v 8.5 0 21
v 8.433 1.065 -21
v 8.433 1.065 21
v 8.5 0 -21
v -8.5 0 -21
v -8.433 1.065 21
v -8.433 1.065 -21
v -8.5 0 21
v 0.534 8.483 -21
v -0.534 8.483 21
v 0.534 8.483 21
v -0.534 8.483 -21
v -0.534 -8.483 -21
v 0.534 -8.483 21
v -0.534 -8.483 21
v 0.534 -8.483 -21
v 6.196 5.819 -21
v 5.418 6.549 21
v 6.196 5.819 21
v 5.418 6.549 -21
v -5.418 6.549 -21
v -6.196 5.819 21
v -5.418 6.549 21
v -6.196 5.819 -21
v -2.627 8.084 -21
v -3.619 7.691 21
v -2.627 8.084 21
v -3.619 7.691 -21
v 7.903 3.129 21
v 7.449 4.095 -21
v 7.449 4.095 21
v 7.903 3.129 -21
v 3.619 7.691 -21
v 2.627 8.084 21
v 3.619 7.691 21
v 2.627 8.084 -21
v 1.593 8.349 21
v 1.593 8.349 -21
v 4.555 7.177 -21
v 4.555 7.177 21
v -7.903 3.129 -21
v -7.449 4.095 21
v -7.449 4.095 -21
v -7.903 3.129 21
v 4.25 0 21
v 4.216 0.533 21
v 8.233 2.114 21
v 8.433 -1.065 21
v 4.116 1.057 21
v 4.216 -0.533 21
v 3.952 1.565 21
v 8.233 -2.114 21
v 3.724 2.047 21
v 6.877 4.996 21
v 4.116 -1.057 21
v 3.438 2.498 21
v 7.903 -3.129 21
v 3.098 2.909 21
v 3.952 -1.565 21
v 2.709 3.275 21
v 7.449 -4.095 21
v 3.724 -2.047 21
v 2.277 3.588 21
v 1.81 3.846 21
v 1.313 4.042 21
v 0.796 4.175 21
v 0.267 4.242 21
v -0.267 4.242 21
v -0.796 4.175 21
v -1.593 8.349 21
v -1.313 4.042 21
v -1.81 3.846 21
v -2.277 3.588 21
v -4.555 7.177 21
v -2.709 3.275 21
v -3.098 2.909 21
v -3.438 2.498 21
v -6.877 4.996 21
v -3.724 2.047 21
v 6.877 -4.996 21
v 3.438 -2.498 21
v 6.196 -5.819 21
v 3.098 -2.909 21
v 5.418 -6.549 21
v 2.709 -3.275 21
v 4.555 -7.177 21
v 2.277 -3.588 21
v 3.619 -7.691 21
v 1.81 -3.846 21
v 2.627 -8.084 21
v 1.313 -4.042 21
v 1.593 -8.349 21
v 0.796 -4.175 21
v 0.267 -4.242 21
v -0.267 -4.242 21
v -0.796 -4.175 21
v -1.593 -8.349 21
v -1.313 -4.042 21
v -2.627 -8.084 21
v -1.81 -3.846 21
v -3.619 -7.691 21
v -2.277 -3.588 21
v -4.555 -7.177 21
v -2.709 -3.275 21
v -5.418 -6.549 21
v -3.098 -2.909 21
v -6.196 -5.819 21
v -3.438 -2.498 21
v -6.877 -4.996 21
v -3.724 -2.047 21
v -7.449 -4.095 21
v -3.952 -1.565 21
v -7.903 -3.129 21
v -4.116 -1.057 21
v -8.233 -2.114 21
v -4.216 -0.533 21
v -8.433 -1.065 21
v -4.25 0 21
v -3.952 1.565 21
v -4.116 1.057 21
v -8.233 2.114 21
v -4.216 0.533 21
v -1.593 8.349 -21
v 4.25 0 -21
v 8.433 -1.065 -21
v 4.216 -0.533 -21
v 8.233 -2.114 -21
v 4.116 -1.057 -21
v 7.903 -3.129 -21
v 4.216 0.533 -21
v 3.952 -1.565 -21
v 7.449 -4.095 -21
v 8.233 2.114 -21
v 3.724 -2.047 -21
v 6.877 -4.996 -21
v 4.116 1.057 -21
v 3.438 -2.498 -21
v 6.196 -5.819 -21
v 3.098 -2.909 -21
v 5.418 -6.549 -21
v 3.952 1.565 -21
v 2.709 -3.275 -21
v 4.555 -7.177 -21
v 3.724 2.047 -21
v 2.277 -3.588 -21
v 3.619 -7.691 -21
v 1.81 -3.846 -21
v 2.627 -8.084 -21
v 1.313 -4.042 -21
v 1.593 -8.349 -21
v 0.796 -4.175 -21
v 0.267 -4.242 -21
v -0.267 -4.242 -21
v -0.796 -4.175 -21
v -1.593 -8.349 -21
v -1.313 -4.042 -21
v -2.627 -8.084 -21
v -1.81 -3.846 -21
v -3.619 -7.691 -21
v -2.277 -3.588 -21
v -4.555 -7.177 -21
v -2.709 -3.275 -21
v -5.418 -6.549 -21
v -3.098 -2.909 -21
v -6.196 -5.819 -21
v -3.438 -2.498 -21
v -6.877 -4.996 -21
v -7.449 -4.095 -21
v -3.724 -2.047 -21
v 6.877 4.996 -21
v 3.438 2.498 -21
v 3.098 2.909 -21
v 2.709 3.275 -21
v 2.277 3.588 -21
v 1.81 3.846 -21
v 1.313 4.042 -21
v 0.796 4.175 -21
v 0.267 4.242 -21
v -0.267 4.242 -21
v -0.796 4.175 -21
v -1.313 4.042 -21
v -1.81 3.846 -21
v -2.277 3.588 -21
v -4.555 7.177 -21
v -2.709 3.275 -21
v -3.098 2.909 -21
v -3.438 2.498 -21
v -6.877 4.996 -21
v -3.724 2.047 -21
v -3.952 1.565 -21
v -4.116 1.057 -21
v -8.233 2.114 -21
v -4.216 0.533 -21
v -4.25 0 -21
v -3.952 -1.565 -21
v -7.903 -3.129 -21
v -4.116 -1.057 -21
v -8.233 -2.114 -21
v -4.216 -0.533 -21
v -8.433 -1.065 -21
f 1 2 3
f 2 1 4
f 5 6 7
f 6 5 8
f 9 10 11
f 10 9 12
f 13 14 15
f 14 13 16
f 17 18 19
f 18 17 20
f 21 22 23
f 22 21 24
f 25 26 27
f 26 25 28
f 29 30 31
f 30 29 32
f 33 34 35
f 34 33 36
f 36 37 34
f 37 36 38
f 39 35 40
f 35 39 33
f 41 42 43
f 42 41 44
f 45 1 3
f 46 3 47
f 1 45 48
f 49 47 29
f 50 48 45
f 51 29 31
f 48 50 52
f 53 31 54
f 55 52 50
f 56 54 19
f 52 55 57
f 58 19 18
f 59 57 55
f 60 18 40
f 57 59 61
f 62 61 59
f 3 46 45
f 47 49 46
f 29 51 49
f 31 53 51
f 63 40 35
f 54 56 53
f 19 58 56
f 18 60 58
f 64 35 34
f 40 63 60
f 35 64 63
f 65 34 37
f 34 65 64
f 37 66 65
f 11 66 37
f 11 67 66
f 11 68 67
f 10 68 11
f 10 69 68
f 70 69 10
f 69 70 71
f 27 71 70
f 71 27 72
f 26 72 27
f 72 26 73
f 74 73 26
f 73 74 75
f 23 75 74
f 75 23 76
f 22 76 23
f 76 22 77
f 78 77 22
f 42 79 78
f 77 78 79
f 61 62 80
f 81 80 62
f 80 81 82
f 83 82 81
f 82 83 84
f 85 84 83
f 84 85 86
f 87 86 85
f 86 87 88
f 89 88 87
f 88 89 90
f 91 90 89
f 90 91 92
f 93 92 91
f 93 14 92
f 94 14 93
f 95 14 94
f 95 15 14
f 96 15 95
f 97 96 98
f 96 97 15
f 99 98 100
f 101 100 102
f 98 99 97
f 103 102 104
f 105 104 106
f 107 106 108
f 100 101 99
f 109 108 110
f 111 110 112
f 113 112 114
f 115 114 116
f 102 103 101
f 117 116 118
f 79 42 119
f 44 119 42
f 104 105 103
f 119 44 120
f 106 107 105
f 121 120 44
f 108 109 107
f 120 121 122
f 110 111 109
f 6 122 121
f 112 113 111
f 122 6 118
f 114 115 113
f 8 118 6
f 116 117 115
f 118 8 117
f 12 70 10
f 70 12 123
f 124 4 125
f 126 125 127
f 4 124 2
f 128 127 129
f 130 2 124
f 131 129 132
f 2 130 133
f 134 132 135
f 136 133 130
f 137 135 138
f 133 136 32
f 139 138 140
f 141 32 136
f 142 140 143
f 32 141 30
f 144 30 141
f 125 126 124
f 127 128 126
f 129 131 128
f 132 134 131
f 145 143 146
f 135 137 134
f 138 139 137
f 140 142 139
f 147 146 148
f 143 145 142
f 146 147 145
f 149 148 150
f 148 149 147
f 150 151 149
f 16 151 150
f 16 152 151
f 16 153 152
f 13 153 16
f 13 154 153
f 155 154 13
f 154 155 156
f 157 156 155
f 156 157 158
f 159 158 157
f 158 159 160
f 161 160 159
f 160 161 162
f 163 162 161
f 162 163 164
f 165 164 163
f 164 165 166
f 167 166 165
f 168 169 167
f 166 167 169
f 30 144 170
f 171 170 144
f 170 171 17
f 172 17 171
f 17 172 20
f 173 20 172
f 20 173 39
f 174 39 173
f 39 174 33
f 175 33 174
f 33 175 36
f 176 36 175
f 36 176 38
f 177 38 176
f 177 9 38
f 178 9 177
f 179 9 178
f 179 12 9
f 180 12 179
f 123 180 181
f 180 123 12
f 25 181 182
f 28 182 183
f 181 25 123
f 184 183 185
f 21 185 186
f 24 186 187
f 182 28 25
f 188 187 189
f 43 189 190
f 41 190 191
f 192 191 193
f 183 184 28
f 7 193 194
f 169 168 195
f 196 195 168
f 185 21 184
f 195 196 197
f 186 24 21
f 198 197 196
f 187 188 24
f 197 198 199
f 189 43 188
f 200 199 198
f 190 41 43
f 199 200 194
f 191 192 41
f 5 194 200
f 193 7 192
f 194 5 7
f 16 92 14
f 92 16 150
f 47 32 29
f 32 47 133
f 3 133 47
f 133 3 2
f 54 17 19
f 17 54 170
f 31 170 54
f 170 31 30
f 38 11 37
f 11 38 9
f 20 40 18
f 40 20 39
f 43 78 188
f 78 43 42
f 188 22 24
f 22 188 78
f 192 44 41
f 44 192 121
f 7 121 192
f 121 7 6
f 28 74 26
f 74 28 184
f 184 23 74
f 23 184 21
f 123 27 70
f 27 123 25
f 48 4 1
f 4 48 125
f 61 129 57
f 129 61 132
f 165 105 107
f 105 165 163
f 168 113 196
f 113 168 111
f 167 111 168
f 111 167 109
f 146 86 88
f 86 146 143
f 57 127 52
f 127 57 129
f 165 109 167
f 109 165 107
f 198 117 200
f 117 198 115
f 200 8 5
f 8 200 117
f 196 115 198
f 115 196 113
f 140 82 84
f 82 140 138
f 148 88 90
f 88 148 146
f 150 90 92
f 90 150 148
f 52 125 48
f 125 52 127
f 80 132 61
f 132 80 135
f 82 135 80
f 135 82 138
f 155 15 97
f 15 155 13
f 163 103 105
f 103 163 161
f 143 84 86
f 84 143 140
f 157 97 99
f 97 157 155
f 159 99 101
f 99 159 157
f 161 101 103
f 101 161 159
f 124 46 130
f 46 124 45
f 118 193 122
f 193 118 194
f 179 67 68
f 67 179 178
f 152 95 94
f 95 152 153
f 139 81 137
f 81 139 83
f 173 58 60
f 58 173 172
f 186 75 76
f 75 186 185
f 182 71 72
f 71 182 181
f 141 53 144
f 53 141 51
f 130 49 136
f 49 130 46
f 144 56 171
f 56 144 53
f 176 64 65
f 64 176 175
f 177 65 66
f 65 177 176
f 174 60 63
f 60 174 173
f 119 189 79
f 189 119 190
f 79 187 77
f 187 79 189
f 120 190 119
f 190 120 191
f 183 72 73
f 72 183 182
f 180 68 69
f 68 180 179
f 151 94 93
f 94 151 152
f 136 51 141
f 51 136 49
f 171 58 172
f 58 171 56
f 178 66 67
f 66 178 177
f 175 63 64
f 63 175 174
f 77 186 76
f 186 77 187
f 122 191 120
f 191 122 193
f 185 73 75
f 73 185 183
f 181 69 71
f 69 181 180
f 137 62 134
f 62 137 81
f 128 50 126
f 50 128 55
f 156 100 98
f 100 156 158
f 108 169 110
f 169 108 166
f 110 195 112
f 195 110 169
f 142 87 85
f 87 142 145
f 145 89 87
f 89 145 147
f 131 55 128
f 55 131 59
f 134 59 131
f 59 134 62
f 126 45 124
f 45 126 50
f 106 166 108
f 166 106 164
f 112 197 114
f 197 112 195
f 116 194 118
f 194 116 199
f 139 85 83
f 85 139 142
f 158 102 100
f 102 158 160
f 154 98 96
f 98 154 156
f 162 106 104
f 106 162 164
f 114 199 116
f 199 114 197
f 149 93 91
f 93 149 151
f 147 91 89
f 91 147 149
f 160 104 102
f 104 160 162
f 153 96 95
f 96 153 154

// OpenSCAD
$fn = 50;


difference() {
	union() {
		translate(v = [0, 0, -21.0000000000]) {
			cylinder(h = 42, r = 8.5000000000);
		}
	}
	union() {
		translate(v = [0, 0, -100.0000000000]) {
			cylinder(h = 200, r = 4.2500000000);
		}
	}
}
